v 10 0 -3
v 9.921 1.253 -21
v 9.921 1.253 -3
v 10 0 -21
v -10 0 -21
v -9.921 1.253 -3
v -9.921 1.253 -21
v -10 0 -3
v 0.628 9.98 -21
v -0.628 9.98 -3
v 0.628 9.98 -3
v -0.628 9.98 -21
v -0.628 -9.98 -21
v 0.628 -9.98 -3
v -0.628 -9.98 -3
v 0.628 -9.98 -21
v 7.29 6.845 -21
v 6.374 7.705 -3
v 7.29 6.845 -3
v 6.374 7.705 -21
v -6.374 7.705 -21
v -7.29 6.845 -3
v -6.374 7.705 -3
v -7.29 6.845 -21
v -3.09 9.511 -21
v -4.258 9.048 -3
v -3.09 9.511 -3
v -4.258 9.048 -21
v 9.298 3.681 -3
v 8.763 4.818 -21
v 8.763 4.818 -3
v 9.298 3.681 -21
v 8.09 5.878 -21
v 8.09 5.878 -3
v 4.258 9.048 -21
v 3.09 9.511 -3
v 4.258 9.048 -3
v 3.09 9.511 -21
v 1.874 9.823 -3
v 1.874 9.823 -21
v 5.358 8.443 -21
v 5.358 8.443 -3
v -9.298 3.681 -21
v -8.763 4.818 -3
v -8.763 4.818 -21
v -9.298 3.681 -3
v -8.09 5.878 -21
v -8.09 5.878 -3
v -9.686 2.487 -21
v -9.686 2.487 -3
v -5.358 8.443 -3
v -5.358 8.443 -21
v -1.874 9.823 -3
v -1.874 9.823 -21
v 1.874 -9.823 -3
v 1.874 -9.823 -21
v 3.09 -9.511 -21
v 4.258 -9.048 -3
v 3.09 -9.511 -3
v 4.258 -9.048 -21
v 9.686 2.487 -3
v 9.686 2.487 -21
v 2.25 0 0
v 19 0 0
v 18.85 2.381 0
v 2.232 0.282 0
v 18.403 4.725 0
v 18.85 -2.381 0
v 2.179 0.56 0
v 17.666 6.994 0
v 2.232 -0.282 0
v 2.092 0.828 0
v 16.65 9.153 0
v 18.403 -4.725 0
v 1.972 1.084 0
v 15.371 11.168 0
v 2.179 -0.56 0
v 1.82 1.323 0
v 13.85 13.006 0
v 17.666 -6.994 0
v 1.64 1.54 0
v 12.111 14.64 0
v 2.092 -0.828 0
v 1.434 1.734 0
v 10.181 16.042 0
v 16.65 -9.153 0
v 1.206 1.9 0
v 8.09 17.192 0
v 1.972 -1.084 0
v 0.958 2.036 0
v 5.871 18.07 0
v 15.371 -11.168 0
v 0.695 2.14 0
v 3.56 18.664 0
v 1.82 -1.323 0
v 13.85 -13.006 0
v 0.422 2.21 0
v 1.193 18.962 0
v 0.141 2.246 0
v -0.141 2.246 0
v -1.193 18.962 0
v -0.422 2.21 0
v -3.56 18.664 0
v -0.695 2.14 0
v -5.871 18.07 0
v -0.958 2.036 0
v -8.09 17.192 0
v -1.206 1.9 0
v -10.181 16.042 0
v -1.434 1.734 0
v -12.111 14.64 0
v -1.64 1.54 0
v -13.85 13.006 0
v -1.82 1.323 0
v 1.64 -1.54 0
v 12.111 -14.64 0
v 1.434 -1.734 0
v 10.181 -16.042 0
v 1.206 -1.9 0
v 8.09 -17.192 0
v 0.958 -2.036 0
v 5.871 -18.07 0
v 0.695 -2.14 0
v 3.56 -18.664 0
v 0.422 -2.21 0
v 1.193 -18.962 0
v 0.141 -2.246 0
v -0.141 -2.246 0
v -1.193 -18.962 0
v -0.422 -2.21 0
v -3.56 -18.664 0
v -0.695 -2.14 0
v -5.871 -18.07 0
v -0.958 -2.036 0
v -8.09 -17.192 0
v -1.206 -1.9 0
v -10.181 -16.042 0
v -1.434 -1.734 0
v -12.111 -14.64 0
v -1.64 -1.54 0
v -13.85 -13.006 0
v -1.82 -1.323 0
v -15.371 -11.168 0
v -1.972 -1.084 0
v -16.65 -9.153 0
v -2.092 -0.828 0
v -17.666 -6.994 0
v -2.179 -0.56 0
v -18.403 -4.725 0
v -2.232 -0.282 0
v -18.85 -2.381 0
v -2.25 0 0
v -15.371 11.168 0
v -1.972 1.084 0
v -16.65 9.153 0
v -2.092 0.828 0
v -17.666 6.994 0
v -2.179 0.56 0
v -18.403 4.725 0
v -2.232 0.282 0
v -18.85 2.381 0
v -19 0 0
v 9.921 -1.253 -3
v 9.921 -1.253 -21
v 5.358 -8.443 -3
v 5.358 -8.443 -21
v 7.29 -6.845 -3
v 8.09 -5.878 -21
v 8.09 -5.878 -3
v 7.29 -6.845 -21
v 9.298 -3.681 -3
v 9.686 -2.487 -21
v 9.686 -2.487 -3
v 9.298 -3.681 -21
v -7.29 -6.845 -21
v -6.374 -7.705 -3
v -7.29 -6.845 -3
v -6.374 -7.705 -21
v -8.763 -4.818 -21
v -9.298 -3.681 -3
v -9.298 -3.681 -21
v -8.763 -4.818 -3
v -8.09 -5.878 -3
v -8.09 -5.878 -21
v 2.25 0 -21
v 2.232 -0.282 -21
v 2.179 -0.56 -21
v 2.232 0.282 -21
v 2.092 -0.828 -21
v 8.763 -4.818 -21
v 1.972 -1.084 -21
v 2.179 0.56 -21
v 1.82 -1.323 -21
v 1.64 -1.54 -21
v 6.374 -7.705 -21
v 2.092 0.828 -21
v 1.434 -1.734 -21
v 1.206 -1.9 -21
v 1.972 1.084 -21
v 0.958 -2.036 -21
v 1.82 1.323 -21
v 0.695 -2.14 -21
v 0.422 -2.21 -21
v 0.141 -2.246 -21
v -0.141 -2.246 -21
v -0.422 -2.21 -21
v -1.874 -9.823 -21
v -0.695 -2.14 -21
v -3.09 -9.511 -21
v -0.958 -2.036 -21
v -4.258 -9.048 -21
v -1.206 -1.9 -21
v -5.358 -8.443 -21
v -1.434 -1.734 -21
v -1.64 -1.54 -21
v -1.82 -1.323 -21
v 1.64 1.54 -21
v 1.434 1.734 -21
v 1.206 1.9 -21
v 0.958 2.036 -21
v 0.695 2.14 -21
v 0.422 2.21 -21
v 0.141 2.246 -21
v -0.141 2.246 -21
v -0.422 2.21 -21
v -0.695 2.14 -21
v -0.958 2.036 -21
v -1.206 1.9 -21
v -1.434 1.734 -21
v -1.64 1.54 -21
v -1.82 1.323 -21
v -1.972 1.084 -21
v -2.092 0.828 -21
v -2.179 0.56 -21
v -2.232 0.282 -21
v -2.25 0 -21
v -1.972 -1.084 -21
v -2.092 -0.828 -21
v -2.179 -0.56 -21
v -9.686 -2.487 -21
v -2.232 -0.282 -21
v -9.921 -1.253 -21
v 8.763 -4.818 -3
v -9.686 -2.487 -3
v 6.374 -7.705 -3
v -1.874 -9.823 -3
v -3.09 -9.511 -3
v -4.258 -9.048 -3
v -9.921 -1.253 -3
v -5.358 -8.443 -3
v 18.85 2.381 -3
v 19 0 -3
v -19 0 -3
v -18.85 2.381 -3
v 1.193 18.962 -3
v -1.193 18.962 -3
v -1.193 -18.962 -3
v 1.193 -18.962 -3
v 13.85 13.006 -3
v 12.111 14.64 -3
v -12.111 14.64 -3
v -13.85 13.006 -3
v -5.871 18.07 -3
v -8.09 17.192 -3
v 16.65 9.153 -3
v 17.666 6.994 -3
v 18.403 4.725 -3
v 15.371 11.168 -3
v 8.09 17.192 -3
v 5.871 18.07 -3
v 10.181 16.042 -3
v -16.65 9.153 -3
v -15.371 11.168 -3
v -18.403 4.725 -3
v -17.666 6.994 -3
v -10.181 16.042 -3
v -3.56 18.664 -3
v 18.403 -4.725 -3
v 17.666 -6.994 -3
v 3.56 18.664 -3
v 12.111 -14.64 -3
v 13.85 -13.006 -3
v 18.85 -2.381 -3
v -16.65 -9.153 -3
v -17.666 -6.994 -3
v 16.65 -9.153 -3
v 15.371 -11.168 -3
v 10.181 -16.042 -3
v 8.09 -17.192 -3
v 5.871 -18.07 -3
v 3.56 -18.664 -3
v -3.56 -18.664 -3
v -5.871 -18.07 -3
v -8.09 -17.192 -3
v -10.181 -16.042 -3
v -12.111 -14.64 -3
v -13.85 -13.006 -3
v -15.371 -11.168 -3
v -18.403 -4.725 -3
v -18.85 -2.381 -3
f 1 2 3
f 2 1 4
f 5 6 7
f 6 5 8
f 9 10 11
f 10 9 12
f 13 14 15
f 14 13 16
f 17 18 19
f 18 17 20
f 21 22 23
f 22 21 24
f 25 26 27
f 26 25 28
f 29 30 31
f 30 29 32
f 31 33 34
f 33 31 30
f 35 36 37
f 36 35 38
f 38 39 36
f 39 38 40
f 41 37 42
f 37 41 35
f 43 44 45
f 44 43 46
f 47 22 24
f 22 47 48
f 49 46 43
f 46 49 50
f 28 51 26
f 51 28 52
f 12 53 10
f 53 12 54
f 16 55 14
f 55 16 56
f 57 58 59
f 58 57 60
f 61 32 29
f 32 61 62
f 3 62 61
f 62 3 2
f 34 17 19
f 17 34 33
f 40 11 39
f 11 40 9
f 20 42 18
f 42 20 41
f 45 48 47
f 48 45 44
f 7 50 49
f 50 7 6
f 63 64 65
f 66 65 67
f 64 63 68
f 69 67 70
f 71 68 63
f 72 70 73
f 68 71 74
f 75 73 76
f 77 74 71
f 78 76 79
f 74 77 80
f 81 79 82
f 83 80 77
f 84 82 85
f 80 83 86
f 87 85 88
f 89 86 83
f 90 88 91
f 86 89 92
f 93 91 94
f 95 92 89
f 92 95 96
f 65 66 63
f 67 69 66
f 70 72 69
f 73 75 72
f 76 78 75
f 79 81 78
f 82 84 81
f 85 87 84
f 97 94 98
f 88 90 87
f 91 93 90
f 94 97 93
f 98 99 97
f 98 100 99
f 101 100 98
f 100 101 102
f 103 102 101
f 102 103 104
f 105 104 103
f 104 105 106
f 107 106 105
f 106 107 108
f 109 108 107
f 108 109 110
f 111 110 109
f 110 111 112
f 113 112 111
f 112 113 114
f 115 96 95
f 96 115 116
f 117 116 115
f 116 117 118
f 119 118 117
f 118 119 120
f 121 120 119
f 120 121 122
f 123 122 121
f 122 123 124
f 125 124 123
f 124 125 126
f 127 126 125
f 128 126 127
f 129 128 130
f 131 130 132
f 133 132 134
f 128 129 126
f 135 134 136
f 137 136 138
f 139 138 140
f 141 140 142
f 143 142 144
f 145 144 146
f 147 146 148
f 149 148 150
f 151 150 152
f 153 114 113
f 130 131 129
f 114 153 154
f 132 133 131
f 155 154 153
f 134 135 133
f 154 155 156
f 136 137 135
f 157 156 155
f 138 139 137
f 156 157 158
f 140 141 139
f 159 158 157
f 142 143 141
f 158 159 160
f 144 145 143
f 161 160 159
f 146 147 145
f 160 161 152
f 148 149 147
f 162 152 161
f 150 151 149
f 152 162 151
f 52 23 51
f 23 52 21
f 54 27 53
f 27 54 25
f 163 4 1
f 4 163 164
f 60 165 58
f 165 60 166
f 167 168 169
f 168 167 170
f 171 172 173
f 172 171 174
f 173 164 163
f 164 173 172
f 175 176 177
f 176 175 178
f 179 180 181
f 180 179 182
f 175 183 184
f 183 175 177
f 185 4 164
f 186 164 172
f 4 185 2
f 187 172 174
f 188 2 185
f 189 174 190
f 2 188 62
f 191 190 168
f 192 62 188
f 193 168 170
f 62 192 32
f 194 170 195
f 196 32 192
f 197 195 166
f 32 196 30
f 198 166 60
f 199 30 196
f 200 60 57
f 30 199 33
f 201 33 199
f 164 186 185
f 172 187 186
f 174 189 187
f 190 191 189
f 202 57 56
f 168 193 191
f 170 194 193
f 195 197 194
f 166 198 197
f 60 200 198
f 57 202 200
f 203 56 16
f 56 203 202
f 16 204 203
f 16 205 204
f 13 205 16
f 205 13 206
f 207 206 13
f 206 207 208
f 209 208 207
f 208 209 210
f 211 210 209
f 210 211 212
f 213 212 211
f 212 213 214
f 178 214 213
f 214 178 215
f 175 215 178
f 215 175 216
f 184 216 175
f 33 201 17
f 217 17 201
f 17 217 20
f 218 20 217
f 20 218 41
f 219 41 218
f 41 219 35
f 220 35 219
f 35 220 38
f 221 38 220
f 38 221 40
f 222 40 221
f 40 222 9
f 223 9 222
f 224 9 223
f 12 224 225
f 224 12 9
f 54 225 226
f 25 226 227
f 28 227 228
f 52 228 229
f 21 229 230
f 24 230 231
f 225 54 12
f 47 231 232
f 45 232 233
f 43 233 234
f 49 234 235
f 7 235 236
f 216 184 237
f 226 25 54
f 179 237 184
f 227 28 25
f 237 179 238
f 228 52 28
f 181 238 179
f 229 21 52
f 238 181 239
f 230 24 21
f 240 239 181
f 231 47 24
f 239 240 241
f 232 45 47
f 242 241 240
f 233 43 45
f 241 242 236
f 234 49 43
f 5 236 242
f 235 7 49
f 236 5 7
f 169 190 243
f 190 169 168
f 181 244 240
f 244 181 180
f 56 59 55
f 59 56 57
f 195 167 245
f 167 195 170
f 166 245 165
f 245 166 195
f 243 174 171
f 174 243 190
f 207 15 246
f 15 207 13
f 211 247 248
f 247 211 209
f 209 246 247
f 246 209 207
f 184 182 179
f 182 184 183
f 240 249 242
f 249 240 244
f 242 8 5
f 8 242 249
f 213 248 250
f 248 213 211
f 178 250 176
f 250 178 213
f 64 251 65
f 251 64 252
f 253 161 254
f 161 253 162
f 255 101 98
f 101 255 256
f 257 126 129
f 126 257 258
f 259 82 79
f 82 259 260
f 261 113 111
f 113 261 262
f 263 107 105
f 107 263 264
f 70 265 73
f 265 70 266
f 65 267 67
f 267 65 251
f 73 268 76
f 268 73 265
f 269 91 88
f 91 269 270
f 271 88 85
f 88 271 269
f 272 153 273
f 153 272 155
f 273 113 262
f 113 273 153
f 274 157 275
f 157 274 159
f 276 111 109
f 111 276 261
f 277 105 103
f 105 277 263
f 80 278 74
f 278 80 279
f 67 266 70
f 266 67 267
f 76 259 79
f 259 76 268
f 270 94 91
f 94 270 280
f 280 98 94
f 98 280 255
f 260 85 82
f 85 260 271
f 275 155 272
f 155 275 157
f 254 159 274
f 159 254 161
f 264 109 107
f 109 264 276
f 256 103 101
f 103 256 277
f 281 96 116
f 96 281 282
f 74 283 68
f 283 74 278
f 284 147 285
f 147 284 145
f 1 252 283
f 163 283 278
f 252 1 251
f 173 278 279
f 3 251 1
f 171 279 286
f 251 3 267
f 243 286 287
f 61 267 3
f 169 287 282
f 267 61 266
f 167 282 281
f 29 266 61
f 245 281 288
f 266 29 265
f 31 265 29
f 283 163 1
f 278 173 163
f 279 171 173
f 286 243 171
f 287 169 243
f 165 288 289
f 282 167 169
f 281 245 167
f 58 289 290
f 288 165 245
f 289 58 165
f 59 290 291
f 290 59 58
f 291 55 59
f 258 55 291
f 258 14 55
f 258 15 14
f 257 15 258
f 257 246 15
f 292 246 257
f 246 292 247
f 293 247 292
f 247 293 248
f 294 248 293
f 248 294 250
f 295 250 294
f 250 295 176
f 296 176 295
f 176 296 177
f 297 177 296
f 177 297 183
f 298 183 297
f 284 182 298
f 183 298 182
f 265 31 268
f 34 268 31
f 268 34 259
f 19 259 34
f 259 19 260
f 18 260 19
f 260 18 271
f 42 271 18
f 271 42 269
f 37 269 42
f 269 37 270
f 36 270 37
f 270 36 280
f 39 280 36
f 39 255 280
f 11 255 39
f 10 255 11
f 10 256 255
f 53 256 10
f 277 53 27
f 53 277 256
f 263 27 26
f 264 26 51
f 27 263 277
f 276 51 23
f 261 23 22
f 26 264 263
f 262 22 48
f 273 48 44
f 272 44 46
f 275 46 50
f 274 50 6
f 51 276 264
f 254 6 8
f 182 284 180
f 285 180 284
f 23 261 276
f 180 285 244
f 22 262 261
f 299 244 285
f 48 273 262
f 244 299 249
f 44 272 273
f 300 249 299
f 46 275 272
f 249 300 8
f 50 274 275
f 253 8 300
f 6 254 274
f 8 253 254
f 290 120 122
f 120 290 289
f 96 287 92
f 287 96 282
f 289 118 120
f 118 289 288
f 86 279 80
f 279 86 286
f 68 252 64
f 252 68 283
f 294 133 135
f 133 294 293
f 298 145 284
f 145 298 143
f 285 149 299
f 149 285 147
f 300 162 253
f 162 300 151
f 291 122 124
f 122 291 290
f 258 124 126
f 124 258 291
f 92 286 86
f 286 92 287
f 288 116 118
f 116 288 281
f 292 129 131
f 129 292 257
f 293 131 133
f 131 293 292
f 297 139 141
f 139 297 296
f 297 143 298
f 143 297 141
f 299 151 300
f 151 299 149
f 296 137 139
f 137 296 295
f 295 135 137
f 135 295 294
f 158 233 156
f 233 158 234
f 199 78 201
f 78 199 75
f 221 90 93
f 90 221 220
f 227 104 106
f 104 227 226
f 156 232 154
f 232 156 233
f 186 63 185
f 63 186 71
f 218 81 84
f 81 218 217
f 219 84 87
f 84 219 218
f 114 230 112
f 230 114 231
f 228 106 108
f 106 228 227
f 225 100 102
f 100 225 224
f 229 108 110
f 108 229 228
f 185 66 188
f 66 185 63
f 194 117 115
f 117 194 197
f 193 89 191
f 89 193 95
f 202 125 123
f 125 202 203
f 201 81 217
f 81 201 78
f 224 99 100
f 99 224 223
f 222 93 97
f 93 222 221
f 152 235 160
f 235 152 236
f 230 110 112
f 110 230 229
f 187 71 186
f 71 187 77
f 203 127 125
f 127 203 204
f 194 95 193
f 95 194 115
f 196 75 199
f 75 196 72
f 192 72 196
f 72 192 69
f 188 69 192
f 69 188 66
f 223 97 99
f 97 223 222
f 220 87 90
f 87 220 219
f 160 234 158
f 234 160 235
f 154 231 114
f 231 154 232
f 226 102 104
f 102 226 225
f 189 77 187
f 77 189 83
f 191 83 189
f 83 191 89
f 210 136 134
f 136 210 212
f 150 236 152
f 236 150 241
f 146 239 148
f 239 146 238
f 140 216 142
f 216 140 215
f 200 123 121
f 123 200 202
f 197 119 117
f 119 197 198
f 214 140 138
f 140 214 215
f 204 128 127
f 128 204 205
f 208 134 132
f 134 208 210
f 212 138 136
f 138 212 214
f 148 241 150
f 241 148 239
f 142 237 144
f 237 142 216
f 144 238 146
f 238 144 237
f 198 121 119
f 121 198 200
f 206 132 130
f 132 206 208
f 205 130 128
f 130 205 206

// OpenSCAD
$fn = 50;


difference() {
	union() {
		translate(v = [0, 0, -21.0000000000]) {
			cylinder(h = 21, r = 10.0000000000);
		}
		translate(v = [0, 0, -3.0000000000]) {
			cylinder(h = 3, r = 19.0000000000);
		}
	}
	union() {
		#translate(v = [0, 0, -21]) {
			cylinder(h = 21, r = 2.2500000000);
		}
	}
}
